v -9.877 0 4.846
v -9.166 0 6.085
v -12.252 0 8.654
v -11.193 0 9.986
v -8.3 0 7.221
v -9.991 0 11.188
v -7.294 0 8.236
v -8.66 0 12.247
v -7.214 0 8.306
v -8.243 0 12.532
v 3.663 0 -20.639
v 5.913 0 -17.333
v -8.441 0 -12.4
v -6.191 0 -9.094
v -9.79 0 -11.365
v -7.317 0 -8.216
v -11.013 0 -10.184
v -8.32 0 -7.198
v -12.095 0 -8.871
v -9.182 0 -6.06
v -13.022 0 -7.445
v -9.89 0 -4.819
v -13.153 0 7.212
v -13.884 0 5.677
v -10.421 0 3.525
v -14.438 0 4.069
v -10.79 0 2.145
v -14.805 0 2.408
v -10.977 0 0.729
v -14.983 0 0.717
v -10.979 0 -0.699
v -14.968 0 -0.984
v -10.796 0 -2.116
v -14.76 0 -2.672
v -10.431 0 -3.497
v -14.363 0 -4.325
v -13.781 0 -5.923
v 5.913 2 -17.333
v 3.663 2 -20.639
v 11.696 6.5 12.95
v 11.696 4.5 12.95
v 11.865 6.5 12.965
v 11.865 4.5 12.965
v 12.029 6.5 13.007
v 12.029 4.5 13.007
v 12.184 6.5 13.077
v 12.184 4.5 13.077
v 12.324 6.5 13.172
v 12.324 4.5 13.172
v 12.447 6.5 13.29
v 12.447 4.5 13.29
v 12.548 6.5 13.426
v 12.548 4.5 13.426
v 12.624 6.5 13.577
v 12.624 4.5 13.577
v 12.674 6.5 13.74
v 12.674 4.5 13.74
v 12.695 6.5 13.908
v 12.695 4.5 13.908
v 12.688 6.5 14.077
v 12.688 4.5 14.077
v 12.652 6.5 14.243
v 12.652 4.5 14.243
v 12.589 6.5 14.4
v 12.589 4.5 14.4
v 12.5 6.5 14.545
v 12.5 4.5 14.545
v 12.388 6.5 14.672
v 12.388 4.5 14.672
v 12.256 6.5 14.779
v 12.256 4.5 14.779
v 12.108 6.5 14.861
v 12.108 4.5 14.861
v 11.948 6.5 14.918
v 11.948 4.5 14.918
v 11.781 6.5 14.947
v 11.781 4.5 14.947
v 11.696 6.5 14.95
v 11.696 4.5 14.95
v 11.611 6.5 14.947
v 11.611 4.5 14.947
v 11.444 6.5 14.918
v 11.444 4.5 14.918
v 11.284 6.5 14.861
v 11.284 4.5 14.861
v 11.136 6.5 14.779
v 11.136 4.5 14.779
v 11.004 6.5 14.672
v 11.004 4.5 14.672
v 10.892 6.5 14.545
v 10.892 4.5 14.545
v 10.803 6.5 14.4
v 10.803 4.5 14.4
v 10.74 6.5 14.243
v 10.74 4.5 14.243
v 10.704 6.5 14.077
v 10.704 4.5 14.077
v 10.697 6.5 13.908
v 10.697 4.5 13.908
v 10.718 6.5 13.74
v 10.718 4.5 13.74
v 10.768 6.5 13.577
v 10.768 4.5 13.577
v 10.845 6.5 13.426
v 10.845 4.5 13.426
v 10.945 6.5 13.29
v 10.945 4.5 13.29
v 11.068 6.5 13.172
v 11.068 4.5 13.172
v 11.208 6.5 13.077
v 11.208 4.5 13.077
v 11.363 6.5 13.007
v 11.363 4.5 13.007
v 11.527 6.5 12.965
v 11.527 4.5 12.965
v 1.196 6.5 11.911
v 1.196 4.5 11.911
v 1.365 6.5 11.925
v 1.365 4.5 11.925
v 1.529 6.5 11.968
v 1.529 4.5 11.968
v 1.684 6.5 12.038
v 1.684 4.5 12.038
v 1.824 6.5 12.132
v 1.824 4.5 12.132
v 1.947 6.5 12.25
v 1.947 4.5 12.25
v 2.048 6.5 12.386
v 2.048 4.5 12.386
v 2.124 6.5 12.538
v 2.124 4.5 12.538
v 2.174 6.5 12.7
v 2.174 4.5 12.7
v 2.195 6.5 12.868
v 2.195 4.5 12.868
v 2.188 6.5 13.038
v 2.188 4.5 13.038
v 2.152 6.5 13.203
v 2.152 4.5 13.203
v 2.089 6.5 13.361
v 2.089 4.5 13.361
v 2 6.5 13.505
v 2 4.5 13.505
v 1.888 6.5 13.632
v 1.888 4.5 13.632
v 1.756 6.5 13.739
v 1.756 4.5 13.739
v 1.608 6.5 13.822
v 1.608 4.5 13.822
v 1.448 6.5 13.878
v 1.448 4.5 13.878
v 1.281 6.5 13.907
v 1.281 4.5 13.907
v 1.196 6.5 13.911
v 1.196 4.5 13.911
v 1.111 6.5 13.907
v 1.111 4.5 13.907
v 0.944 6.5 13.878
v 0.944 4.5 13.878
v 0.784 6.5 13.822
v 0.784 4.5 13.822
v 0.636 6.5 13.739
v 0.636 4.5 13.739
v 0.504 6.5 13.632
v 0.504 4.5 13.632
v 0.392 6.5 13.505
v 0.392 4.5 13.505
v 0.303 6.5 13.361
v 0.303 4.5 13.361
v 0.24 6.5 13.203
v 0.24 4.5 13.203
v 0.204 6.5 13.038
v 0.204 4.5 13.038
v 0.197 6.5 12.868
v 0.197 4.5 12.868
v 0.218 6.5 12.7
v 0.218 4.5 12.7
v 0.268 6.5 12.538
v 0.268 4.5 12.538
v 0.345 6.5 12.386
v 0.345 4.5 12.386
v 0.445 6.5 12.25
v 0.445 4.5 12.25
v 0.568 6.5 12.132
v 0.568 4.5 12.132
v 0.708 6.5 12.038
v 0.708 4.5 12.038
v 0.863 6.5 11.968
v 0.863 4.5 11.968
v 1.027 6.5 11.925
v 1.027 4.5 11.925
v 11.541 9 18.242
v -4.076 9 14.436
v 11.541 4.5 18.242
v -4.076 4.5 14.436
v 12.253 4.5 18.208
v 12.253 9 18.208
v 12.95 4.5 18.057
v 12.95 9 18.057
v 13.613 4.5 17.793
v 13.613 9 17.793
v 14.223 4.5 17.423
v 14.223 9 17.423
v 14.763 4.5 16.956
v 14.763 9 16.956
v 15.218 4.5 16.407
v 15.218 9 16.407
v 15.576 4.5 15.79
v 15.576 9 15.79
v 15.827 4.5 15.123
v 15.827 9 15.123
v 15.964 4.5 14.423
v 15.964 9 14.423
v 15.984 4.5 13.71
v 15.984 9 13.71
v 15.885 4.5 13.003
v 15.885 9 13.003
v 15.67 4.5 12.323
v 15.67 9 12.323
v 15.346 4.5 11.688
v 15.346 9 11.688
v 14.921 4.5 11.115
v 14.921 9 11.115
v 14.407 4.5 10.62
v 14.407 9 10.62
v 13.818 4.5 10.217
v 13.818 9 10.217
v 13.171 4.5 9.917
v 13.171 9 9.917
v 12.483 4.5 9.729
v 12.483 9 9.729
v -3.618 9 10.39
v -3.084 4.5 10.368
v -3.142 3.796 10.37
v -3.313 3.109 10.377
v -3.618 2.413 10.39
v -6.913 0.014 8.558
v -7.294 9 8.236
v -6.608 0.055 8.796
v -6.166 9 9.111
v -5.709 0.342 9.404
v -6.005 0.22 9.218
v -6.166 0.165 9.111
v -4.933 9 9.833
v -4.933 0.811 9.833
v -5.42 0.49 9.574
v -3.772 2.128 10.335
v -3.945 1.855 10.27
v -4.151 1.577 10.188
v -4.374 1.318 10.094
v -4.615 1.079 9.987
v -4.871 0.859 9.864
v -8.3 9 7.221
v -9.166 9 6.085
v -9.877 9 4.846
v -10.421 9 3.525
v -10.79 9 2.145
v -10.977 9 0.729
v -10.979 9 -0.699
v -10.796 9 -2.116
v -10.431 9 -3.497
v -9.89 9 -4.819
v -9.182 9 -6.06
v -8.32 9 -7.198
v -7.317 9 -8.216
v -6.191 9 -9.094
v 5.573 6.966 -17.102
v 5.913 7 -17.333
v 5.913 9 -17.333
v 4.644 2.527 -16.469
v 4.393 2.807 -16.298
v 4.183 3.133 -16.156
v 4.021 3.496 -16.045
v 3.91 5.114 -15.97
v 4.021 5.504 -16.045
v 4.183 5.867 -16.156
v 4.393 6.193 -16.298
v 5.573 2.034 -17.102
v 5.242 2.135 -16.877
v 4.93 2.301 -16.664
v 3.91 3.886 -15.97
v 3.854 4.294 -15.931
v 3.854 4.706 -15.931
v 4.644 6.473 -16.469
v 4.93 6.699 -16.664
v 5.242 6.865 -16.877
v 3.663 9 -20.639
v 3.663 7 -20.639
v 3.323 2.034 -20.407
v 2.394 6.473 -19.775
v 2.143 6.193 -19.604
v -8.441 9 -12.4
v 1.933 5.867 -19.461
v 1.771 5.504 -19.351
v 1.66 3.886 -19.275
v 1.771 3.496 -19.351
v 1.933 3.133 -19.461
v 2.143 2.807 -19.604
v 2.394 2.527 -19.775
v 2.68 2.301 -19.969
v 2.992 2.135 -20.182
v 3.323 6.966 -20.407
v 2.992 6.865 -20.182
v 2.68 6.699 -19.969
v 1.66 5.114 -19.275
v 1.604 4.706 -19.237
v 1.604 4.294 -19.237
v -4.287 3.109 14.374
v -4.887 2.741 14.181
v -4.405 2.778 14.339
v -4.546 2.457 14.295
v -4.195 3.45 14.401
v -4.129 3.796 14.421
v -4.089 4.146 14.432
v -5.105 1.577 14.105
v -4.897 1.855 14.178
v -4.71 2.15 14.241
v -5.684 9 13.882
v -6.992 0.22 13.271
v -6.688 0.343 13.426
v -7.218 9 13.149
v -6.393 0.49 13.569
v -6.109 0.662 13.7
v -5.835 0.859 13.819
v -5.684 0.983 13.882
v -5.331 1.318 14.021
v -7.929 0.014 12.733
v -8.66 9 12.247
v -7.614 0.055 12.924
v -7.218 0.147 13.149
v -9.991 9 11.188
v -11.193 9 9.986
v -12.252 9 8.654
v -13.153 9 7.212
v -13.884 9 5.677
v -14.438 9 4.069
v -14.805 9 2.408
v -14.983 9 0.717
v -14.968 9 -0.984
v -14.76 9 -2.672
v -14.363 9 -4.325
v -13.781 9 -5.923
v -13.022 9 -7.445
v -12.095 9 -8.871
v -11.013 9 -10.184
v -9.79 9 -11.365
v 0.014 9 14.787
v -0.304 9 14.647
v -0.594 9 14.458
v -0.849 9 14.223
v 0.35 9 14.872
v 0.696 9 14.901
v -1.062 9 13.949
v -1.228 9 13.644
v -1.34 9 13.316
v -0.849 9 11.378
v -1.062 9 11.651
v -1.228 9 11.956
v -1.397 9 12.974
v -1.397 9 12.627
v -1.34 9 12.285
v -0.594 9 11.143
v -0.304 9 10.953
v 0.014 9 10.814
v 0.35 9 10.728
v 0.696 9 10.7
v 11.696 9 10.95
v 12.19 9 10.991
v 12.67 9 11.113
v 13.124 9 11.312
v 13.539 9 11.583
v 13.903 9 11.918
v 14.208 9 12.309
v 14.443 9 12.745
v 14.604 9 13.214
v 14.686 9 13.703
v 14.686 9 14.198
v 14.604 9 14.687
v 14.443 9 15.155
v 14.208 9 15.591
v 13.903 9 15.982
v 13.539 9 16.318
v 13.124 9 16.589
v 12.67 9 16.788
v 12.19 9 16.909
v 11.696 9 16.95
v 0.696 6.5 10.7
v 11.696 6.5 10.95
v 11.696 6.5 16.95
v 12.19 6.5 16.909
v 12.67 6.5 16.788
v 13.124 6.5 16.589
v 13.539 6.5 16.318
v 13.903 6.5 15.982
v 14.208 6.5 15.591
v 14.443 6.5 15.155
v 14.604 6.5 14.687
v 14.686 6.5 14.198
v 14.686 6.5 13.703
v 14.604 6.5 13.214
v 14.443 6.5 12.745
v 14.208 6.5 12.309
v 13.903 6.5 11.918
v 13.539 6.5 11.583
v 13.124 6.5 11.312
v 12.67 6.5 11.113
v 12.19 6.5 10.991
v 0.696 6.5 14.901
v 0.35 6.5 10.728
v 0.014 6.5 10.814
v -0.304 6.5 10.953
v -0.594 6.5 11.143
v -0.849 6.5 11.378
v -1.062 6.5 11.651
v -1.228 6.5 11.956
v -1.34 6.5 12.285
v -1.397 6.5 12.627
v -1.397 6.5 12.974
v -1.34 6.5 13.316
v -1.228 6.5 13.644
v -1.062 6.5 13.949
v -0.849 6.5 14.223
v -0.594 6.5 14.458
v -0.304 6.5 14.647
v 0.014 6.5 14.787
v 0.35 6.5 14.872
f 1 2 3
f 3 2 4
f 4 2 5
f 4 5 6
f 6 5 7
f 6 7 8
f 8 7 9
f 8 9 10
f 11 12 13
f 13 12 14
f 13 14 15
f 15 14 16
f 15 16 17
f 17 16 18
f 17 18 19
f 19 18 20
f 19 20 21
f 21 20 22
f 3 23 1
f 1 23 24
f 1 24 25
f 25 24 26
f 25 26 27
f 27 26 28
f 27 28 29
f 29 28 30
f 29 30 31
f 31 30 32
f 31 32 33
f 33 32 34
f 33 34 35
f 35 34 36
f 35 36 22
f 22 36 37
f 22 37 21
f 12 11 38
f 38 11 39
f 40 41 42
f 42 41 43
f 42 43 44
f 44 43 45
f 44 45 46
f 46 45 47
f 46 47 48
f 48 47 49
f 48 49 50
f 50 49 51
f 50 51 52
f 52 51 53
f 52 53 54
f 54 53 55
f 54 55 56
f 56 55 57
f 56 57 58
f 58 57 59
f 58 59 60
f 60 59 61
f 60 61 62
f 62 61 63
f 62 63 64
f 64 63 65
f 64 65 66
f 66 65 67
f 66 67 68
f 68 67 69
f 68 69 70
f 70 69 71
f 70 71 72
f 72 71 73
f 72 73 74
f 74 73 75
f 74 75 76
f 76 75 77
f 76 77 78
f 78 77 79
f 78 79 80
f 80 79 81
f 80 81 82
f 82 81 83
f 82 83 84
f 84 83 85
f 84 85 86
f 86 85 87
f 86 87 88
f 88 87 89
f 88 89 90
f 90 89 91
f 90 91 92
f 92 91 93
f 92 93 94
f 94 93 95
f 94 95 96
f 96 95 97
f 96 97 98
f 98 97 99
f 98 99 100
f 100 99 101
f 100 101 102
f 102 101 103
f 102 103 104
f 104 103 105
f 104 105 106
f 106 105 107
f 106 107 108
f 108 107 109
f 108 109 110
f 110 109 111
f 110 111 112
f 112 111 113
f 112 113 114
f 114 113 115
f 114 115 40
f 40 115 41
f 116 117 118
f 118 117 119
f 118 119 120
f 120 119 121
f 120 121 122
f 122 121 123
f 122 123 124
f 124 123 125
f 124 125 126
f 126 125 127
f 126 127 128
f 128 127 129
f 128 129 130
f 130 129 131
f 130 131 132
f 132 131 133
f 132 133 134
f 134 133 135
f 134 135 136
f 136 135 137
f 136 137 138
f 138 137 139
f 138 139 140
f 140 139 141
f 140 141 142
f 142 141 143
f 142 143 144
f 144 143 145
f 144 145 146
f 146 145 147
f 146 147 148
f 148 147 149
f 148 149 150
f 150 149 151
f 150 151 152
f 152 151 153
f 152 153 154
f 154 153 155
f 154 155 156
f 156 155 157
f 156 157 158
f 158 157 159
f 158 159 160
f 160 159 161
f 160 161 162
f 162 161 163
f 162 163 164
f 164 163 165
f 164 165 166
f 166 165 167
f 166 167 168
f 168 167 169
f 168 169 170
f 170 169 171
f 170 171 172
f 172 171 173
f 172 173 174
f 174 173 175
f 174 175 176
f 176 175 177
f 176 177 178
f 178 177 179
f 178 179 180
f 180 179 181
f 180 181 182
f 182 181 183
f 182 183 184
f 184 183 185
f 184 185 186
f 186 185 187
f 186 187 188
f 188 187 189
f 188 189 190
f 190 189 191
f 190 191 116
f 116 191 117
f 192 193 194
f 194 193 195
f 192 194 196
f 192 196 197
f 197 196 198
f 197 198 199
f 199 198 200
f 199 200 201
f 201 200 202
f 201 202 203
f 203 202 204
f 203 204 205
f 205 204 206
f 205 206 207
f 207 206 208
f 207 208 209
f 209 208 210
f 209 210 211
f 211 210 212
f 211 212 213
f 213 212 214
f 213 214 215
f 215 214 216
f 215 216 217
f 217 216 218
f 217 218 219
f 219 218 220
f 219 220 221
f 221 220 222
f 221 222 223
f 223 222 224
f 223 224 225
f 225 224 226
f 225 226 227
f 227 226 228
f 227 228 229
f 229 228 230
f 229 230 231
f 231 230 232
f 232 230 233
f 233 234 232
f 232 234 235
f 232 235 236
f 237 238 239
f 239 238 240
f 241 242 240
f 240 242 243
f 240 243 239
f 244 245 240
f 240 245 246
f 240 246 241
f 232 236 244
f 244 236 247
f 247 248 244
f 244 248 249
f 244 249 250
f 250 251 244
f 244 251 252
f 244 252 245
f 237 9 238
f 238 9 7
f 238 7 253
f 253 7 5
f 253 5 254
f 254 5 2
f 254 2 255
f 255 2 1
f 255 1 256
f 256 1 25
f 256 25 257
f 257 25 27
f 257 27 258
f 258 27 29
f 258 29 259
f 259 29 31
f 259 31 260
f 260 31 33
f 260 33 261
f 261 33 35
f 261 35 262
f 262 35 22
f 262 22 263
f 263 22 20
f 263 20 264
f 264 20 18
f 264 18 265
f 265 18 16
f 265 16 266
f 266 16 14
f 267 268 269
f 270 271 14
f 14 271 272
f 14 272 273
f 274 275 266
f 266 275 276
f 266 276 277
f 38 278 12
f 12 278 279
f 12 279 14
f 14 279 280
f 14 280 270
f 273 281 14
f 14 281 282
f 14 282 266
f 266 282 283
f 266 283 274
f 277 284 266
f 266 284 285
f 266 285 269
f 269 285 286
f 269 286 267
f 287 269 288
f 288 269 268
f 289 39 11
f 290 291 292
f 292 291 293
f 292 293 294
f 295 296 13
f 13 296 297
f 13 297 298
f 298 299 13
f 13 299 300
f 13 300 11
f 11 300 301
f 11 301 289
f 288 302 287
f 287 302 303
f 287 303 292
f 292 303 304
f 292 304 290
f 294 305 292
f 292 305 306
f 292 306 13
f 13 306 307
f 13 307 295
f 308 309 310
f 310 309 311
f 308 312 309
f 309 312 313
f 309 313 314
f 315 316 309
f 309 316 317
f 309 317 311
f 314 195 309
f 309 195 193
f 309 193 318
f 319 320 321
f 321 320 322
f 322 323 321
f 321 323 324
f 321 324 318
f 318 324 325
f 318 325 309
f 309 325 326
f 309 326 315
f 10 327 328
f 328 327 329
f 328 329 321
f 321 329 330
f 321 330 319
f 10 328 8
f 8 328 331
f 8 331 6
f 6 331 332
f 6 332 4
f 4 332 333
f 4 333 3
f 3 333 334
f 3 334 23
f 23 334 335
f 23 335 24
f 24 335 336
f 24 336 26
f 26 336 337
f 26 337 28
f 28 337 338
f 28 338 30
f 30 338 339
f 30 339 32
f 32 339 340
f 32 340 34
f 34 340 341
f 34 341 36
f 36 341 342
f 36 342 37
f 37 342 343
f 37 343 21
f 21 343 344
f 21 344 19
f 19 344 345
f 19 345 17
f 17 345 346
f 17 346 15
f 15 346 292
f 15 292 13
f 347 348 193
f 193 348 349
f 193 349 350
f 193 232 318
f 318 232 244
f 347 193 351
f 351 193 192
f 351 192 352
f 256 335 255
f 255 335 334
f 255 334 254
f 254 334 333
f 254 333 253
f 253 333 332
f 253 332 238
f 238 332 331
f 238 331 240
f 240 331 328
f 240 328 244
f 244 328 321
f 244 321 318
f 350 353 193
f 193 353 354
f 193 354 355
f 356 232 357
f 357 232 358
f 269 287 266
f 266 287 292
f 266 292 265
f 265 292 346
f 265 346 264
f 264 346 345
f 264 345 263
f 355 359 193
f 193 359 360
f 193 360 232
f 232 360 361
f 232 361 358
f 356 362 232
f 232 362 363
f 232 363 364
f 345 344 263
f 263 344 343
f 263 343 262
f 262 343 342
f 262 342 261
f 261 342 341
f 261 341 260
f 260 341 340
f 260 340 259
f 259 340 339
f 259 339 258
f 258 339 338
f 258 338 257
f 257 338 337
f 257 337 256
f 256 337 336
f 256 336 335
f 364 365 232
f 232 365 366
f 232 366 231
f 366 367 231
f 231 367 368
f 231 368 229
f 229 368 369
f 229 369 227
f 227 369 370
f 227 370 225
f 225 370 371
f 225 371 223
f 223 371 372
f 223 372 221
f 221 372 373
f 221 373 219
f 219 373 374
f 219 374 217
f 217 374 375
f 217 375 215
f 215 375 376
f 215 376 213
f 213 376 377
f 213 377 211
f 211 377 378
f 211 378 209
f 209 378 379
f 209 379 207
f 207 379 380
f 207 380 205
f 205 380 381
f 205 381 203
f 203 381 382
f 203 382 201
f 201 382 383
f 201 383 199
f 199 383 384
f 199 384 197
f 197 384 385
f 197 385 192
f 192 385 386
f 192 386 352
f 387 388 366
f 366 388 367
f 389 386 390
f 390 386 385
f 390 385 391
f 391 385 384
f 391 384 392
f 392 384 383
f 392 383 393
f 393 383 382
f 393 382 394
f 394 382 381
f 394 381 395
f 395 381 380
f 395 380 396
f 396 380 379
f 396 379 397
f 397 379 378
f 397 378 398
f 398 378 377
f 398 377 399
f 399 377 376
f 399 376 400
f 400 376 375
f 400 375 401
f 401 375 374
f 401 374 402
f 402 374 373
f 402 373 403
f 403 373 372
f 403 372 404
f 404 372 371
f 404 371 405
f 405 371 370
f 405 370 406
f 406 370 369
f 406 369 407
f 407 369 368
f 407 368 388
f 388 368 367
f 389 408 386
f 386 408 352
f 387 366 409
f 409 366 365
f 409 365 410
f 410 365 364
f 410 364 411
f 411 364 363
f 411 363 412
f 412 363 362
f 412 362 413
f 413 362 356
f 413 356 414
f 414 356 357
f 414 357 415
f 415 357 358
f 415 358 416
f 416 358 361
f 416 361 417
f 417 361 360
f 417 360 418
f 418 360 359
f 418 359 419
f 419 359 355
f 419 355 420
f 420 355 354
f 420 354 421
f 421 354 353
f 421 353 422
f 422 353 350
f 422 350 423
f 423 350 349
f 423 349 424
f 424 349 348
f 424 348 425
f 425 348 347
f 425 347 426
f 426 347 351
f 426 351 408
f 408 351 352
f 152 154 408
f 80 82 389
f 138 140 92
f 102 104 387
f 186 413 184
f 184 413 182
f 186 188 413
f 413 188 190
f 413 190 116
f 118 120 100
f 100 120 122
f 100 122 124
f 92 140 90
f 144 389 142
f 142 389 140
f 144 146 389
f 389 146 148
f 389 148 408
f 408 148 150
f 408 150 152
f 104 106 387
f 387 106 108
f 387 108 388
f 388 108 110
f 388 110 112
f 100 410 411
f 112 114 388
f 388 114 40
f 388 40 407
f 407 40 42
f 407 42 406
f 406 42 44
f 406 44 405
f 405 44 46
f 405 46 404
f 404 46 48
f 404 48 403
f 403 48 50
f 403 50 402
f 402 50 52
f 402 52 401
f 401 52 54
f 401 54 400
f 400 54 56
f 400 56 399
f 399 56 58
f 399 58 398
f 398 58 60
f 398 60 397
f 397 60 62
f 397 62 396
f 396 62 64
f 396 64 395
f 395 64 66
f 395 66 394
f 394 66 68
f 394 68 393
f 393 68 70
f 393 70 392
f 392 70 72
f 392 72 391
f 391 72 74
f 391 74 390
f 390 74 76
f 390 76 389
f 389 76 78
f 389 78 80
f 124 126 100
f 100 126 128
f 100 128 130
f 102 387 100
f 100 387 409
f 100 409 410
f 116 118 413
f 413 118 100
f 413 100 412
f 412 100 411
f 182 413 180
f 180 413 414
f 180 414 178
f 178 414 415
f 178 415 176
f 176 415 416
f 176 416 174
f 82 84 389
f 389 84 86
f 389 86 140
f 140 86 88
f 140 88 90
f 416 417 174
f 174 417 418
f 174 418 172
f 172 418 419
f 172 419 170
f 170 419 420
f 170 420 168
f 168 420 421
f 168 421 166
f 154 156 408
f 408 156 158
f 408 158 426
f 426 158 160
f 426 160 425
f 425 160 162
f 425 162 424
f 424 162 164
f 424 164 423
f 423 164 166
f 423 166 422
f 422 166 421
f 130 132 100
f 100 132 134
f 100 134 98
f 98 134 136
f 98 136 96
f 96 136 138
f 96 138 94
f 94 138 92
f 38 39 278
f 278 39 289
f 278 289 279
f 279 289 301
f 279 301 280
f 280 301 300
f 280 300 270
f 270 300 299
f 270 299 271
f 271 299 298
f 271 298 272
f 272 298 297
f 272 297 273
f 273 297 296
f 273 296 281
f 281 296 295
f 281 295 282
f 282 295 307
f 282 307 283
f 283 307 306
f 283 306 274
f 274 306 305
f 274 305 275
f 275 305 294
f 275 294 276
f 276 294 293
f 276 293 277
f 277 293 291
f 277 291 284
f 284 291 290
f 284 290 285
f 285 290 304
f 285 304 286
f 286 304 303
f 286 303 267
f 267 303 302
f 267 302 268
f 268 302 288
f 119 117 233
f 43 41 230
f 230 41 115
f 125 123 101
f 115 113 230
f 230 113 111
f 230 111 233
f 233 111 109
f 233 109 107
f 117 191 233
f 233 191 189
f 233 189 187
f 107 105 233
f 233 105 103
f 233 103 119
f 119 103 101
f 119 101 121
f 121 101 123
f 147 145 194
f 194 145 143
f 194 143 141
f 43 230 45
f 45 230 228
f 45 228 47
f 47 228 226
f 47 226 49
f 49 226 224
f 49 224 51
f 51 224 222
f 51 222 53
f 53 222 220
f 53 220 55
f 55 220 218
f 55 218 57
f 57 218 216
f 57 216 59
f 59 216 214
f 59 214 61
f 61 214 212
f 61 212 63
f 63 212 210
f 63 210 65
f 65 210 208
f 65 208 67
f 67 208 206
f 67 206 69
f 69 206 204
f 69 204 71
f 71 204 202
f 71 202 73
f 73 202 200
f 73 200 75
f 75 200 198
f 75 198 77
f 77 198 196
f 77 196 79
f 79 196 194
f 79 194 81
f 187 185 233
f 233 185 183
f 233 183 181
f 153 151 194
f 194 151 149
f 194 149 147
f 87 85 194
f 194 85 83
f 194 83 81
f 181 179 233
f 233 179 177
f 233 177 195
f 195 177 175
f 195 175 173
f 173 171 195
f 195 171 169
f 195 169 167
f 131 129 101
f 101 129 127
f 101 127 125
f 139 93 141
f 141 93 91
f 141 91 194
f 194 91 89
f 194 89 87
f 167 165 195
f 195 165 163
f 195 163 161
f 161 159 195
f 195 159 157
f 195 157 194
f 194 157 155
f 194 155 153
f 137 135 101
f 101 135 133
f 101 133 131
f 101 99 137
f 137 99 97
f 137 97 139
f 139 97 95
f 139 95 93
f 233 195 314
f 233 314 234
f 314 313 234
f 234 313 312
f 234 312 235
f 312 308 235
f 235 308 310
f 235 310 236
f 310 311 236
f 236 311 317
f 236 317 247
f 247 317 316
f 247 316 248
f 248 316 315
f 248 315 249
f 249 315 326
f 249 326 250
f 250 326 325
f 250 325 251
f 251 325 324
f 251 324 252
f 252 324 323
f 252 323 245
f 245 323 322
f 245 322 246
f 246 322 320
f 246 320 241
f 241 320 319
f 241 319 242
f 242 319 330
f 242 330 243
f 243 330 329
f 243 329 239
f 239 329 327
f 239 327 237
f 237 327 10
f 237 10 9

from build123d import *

# Parameters (mm, degrees)
SKETCH_1_R          = 1
EXTRUDE_2_DEPTH     = 9
SKETCH_4_R          = 1
CUT_EXTRUDE_3_DEPTH = 2.5
SKETCH_5_R          = 2.5
CUT_EXTRUDE_4_DEPTH = 5
CUT_EXTRUDE_5_DEPTH = 10


with BuildPart() as part:
    # 草图1 → 凸台-拉伸2 (new body)
    with BuildSketch(Plane(origin=(0, 0, 0), x_dir=(1, 0, 0), z_dir=(0, 1, 0))):
        with BuildLine():
            Line((3.663143512, 20.638777874), (-8.440521732, 12.399902939))
            ThreePointArc((-8.440521732, 12.399902939), (-14.805433948, -2.408137375), (-4.07565223, -14.435686991))
            Line((-4.07565223, -14.435686991), (-3.023376015, -14.692147477))
            Line((-3.023376015, -14.692147477), (11.540736309, -18.241709146))
            ThreePointArc((11.540736309, -18.241709146), (15.964213302, -14.422684135), (12.48297659, -9.728742113))
            Line((12.48297659, -9.728742113), (-3.617537803, -10.389704275))
            ThreePointArc((-3.617537803, -10.389704275), (-10.906788746, -1.440310357), (-6.190548031, 9.094484579))
            Line((-6.190548031, 9.094484579), (5.913117212, 17.333359514))
            Line((5.913117212, 17.333359514), (3.663143512, 20.638777874))
        make_face()
        with Locations(Location((1.196028789, -12.910534794, 0), (0, 0, 270))):
            Circle(SKETCH_1_R, mode=Mode.SUBTRACT)
        with Locations(Location((11.696028789, -13.950268893, 0), (0, 0, 270))):
            Circle(SKETCH_1_R, mode=Mode.SUBTRACT)
    extrude(amount=EXTRUDE_2_DEPTH)

    # 草图4 → 切除-拉伸3 (cut)
    with BuildSketch(Plane(origin=(0, 9, 0), x_dir=(1, 0, 0), z_dir=(0, 1, 0))):
        with BuildLine():
            ThreePointArc((11.696028789, -16.950268893), (14.696028789, -13.950268893), (11.696028789, -10.950268893))
            Line((11.696028789, -10.950268893), (0.791673154, -10.701877185))
            Line((0.791673154, -10.701877185), (0.696028789, -10.69969849))
            ThreePointArc((0.696028789, -10.69969849), (-1.404446611, -12.80017389), (0.696028789, -14.90064929))
            Line((0.696028789, -14.90064929), (11.696028789, -16.950268893))
        make_face()
        with Locations(Location((1.196028789, -12.910534794, 0), (0, 0, 270))):
            Circle(SKETCH_4_R, mode=Mode.SUBTRACT)
        with Locations(Location((11.696028789, -13.950268893, 0), (0, 0, 270))):
            Circle(SKETCH_4_R, mode=Mode.SUBTRACT)
    extrude(amount=-CUT_EXTRUDE_3_DEPTH, mode=Mode.SUBTRACT)

    # 草图5 → 切除-拉伸4 (cut)
    with BuildSketch(Plane(origin=(-8.440521732, 0, -12.399902939), x_dir=(-0.8266601959267582, 0, 0.5627014487899723), z_dir=(-0.5627014487899723, 0, -0.8266601959267582))):
        with Locations((-14.641645144, 4.5)):
            Circle(SKETCH_5_R)
    extrude(amount=-CUT_EXTRUDE_4_DEPTH, mode=Mode.SUBTRACT)

    # 草图6 → 切除-拉伸5 (cut)
    with BuildSketch(Plane(origin=(-3.549514122, 0, 14.563917234), x_dir=(0.9715611869561729, 0, 0.23678863993087312), z_dir=(-0.23678863993087312, 0, 0.9715611869561729))):
        with BuildLine():
            Line((-0.541538829, 4.5), (18.960921895, 4.5))
            Line((18.960921895, 4.5), (18.960921895, 0))
            Line((18.960921895, 0), (-0.541538829, 0))
            Line((-0.541538829, 0), (-5.041538829, 0))
            ThreePointArc((-5.041538829, 0), (-1.859558314, 1.318019485), (-0.541538829, 4.5))
        make_face()
    extrude(amount=-CUT_EXTRUDE_5_DEPTH, mode=Mode.SUBTRACT)


solid = part.part
